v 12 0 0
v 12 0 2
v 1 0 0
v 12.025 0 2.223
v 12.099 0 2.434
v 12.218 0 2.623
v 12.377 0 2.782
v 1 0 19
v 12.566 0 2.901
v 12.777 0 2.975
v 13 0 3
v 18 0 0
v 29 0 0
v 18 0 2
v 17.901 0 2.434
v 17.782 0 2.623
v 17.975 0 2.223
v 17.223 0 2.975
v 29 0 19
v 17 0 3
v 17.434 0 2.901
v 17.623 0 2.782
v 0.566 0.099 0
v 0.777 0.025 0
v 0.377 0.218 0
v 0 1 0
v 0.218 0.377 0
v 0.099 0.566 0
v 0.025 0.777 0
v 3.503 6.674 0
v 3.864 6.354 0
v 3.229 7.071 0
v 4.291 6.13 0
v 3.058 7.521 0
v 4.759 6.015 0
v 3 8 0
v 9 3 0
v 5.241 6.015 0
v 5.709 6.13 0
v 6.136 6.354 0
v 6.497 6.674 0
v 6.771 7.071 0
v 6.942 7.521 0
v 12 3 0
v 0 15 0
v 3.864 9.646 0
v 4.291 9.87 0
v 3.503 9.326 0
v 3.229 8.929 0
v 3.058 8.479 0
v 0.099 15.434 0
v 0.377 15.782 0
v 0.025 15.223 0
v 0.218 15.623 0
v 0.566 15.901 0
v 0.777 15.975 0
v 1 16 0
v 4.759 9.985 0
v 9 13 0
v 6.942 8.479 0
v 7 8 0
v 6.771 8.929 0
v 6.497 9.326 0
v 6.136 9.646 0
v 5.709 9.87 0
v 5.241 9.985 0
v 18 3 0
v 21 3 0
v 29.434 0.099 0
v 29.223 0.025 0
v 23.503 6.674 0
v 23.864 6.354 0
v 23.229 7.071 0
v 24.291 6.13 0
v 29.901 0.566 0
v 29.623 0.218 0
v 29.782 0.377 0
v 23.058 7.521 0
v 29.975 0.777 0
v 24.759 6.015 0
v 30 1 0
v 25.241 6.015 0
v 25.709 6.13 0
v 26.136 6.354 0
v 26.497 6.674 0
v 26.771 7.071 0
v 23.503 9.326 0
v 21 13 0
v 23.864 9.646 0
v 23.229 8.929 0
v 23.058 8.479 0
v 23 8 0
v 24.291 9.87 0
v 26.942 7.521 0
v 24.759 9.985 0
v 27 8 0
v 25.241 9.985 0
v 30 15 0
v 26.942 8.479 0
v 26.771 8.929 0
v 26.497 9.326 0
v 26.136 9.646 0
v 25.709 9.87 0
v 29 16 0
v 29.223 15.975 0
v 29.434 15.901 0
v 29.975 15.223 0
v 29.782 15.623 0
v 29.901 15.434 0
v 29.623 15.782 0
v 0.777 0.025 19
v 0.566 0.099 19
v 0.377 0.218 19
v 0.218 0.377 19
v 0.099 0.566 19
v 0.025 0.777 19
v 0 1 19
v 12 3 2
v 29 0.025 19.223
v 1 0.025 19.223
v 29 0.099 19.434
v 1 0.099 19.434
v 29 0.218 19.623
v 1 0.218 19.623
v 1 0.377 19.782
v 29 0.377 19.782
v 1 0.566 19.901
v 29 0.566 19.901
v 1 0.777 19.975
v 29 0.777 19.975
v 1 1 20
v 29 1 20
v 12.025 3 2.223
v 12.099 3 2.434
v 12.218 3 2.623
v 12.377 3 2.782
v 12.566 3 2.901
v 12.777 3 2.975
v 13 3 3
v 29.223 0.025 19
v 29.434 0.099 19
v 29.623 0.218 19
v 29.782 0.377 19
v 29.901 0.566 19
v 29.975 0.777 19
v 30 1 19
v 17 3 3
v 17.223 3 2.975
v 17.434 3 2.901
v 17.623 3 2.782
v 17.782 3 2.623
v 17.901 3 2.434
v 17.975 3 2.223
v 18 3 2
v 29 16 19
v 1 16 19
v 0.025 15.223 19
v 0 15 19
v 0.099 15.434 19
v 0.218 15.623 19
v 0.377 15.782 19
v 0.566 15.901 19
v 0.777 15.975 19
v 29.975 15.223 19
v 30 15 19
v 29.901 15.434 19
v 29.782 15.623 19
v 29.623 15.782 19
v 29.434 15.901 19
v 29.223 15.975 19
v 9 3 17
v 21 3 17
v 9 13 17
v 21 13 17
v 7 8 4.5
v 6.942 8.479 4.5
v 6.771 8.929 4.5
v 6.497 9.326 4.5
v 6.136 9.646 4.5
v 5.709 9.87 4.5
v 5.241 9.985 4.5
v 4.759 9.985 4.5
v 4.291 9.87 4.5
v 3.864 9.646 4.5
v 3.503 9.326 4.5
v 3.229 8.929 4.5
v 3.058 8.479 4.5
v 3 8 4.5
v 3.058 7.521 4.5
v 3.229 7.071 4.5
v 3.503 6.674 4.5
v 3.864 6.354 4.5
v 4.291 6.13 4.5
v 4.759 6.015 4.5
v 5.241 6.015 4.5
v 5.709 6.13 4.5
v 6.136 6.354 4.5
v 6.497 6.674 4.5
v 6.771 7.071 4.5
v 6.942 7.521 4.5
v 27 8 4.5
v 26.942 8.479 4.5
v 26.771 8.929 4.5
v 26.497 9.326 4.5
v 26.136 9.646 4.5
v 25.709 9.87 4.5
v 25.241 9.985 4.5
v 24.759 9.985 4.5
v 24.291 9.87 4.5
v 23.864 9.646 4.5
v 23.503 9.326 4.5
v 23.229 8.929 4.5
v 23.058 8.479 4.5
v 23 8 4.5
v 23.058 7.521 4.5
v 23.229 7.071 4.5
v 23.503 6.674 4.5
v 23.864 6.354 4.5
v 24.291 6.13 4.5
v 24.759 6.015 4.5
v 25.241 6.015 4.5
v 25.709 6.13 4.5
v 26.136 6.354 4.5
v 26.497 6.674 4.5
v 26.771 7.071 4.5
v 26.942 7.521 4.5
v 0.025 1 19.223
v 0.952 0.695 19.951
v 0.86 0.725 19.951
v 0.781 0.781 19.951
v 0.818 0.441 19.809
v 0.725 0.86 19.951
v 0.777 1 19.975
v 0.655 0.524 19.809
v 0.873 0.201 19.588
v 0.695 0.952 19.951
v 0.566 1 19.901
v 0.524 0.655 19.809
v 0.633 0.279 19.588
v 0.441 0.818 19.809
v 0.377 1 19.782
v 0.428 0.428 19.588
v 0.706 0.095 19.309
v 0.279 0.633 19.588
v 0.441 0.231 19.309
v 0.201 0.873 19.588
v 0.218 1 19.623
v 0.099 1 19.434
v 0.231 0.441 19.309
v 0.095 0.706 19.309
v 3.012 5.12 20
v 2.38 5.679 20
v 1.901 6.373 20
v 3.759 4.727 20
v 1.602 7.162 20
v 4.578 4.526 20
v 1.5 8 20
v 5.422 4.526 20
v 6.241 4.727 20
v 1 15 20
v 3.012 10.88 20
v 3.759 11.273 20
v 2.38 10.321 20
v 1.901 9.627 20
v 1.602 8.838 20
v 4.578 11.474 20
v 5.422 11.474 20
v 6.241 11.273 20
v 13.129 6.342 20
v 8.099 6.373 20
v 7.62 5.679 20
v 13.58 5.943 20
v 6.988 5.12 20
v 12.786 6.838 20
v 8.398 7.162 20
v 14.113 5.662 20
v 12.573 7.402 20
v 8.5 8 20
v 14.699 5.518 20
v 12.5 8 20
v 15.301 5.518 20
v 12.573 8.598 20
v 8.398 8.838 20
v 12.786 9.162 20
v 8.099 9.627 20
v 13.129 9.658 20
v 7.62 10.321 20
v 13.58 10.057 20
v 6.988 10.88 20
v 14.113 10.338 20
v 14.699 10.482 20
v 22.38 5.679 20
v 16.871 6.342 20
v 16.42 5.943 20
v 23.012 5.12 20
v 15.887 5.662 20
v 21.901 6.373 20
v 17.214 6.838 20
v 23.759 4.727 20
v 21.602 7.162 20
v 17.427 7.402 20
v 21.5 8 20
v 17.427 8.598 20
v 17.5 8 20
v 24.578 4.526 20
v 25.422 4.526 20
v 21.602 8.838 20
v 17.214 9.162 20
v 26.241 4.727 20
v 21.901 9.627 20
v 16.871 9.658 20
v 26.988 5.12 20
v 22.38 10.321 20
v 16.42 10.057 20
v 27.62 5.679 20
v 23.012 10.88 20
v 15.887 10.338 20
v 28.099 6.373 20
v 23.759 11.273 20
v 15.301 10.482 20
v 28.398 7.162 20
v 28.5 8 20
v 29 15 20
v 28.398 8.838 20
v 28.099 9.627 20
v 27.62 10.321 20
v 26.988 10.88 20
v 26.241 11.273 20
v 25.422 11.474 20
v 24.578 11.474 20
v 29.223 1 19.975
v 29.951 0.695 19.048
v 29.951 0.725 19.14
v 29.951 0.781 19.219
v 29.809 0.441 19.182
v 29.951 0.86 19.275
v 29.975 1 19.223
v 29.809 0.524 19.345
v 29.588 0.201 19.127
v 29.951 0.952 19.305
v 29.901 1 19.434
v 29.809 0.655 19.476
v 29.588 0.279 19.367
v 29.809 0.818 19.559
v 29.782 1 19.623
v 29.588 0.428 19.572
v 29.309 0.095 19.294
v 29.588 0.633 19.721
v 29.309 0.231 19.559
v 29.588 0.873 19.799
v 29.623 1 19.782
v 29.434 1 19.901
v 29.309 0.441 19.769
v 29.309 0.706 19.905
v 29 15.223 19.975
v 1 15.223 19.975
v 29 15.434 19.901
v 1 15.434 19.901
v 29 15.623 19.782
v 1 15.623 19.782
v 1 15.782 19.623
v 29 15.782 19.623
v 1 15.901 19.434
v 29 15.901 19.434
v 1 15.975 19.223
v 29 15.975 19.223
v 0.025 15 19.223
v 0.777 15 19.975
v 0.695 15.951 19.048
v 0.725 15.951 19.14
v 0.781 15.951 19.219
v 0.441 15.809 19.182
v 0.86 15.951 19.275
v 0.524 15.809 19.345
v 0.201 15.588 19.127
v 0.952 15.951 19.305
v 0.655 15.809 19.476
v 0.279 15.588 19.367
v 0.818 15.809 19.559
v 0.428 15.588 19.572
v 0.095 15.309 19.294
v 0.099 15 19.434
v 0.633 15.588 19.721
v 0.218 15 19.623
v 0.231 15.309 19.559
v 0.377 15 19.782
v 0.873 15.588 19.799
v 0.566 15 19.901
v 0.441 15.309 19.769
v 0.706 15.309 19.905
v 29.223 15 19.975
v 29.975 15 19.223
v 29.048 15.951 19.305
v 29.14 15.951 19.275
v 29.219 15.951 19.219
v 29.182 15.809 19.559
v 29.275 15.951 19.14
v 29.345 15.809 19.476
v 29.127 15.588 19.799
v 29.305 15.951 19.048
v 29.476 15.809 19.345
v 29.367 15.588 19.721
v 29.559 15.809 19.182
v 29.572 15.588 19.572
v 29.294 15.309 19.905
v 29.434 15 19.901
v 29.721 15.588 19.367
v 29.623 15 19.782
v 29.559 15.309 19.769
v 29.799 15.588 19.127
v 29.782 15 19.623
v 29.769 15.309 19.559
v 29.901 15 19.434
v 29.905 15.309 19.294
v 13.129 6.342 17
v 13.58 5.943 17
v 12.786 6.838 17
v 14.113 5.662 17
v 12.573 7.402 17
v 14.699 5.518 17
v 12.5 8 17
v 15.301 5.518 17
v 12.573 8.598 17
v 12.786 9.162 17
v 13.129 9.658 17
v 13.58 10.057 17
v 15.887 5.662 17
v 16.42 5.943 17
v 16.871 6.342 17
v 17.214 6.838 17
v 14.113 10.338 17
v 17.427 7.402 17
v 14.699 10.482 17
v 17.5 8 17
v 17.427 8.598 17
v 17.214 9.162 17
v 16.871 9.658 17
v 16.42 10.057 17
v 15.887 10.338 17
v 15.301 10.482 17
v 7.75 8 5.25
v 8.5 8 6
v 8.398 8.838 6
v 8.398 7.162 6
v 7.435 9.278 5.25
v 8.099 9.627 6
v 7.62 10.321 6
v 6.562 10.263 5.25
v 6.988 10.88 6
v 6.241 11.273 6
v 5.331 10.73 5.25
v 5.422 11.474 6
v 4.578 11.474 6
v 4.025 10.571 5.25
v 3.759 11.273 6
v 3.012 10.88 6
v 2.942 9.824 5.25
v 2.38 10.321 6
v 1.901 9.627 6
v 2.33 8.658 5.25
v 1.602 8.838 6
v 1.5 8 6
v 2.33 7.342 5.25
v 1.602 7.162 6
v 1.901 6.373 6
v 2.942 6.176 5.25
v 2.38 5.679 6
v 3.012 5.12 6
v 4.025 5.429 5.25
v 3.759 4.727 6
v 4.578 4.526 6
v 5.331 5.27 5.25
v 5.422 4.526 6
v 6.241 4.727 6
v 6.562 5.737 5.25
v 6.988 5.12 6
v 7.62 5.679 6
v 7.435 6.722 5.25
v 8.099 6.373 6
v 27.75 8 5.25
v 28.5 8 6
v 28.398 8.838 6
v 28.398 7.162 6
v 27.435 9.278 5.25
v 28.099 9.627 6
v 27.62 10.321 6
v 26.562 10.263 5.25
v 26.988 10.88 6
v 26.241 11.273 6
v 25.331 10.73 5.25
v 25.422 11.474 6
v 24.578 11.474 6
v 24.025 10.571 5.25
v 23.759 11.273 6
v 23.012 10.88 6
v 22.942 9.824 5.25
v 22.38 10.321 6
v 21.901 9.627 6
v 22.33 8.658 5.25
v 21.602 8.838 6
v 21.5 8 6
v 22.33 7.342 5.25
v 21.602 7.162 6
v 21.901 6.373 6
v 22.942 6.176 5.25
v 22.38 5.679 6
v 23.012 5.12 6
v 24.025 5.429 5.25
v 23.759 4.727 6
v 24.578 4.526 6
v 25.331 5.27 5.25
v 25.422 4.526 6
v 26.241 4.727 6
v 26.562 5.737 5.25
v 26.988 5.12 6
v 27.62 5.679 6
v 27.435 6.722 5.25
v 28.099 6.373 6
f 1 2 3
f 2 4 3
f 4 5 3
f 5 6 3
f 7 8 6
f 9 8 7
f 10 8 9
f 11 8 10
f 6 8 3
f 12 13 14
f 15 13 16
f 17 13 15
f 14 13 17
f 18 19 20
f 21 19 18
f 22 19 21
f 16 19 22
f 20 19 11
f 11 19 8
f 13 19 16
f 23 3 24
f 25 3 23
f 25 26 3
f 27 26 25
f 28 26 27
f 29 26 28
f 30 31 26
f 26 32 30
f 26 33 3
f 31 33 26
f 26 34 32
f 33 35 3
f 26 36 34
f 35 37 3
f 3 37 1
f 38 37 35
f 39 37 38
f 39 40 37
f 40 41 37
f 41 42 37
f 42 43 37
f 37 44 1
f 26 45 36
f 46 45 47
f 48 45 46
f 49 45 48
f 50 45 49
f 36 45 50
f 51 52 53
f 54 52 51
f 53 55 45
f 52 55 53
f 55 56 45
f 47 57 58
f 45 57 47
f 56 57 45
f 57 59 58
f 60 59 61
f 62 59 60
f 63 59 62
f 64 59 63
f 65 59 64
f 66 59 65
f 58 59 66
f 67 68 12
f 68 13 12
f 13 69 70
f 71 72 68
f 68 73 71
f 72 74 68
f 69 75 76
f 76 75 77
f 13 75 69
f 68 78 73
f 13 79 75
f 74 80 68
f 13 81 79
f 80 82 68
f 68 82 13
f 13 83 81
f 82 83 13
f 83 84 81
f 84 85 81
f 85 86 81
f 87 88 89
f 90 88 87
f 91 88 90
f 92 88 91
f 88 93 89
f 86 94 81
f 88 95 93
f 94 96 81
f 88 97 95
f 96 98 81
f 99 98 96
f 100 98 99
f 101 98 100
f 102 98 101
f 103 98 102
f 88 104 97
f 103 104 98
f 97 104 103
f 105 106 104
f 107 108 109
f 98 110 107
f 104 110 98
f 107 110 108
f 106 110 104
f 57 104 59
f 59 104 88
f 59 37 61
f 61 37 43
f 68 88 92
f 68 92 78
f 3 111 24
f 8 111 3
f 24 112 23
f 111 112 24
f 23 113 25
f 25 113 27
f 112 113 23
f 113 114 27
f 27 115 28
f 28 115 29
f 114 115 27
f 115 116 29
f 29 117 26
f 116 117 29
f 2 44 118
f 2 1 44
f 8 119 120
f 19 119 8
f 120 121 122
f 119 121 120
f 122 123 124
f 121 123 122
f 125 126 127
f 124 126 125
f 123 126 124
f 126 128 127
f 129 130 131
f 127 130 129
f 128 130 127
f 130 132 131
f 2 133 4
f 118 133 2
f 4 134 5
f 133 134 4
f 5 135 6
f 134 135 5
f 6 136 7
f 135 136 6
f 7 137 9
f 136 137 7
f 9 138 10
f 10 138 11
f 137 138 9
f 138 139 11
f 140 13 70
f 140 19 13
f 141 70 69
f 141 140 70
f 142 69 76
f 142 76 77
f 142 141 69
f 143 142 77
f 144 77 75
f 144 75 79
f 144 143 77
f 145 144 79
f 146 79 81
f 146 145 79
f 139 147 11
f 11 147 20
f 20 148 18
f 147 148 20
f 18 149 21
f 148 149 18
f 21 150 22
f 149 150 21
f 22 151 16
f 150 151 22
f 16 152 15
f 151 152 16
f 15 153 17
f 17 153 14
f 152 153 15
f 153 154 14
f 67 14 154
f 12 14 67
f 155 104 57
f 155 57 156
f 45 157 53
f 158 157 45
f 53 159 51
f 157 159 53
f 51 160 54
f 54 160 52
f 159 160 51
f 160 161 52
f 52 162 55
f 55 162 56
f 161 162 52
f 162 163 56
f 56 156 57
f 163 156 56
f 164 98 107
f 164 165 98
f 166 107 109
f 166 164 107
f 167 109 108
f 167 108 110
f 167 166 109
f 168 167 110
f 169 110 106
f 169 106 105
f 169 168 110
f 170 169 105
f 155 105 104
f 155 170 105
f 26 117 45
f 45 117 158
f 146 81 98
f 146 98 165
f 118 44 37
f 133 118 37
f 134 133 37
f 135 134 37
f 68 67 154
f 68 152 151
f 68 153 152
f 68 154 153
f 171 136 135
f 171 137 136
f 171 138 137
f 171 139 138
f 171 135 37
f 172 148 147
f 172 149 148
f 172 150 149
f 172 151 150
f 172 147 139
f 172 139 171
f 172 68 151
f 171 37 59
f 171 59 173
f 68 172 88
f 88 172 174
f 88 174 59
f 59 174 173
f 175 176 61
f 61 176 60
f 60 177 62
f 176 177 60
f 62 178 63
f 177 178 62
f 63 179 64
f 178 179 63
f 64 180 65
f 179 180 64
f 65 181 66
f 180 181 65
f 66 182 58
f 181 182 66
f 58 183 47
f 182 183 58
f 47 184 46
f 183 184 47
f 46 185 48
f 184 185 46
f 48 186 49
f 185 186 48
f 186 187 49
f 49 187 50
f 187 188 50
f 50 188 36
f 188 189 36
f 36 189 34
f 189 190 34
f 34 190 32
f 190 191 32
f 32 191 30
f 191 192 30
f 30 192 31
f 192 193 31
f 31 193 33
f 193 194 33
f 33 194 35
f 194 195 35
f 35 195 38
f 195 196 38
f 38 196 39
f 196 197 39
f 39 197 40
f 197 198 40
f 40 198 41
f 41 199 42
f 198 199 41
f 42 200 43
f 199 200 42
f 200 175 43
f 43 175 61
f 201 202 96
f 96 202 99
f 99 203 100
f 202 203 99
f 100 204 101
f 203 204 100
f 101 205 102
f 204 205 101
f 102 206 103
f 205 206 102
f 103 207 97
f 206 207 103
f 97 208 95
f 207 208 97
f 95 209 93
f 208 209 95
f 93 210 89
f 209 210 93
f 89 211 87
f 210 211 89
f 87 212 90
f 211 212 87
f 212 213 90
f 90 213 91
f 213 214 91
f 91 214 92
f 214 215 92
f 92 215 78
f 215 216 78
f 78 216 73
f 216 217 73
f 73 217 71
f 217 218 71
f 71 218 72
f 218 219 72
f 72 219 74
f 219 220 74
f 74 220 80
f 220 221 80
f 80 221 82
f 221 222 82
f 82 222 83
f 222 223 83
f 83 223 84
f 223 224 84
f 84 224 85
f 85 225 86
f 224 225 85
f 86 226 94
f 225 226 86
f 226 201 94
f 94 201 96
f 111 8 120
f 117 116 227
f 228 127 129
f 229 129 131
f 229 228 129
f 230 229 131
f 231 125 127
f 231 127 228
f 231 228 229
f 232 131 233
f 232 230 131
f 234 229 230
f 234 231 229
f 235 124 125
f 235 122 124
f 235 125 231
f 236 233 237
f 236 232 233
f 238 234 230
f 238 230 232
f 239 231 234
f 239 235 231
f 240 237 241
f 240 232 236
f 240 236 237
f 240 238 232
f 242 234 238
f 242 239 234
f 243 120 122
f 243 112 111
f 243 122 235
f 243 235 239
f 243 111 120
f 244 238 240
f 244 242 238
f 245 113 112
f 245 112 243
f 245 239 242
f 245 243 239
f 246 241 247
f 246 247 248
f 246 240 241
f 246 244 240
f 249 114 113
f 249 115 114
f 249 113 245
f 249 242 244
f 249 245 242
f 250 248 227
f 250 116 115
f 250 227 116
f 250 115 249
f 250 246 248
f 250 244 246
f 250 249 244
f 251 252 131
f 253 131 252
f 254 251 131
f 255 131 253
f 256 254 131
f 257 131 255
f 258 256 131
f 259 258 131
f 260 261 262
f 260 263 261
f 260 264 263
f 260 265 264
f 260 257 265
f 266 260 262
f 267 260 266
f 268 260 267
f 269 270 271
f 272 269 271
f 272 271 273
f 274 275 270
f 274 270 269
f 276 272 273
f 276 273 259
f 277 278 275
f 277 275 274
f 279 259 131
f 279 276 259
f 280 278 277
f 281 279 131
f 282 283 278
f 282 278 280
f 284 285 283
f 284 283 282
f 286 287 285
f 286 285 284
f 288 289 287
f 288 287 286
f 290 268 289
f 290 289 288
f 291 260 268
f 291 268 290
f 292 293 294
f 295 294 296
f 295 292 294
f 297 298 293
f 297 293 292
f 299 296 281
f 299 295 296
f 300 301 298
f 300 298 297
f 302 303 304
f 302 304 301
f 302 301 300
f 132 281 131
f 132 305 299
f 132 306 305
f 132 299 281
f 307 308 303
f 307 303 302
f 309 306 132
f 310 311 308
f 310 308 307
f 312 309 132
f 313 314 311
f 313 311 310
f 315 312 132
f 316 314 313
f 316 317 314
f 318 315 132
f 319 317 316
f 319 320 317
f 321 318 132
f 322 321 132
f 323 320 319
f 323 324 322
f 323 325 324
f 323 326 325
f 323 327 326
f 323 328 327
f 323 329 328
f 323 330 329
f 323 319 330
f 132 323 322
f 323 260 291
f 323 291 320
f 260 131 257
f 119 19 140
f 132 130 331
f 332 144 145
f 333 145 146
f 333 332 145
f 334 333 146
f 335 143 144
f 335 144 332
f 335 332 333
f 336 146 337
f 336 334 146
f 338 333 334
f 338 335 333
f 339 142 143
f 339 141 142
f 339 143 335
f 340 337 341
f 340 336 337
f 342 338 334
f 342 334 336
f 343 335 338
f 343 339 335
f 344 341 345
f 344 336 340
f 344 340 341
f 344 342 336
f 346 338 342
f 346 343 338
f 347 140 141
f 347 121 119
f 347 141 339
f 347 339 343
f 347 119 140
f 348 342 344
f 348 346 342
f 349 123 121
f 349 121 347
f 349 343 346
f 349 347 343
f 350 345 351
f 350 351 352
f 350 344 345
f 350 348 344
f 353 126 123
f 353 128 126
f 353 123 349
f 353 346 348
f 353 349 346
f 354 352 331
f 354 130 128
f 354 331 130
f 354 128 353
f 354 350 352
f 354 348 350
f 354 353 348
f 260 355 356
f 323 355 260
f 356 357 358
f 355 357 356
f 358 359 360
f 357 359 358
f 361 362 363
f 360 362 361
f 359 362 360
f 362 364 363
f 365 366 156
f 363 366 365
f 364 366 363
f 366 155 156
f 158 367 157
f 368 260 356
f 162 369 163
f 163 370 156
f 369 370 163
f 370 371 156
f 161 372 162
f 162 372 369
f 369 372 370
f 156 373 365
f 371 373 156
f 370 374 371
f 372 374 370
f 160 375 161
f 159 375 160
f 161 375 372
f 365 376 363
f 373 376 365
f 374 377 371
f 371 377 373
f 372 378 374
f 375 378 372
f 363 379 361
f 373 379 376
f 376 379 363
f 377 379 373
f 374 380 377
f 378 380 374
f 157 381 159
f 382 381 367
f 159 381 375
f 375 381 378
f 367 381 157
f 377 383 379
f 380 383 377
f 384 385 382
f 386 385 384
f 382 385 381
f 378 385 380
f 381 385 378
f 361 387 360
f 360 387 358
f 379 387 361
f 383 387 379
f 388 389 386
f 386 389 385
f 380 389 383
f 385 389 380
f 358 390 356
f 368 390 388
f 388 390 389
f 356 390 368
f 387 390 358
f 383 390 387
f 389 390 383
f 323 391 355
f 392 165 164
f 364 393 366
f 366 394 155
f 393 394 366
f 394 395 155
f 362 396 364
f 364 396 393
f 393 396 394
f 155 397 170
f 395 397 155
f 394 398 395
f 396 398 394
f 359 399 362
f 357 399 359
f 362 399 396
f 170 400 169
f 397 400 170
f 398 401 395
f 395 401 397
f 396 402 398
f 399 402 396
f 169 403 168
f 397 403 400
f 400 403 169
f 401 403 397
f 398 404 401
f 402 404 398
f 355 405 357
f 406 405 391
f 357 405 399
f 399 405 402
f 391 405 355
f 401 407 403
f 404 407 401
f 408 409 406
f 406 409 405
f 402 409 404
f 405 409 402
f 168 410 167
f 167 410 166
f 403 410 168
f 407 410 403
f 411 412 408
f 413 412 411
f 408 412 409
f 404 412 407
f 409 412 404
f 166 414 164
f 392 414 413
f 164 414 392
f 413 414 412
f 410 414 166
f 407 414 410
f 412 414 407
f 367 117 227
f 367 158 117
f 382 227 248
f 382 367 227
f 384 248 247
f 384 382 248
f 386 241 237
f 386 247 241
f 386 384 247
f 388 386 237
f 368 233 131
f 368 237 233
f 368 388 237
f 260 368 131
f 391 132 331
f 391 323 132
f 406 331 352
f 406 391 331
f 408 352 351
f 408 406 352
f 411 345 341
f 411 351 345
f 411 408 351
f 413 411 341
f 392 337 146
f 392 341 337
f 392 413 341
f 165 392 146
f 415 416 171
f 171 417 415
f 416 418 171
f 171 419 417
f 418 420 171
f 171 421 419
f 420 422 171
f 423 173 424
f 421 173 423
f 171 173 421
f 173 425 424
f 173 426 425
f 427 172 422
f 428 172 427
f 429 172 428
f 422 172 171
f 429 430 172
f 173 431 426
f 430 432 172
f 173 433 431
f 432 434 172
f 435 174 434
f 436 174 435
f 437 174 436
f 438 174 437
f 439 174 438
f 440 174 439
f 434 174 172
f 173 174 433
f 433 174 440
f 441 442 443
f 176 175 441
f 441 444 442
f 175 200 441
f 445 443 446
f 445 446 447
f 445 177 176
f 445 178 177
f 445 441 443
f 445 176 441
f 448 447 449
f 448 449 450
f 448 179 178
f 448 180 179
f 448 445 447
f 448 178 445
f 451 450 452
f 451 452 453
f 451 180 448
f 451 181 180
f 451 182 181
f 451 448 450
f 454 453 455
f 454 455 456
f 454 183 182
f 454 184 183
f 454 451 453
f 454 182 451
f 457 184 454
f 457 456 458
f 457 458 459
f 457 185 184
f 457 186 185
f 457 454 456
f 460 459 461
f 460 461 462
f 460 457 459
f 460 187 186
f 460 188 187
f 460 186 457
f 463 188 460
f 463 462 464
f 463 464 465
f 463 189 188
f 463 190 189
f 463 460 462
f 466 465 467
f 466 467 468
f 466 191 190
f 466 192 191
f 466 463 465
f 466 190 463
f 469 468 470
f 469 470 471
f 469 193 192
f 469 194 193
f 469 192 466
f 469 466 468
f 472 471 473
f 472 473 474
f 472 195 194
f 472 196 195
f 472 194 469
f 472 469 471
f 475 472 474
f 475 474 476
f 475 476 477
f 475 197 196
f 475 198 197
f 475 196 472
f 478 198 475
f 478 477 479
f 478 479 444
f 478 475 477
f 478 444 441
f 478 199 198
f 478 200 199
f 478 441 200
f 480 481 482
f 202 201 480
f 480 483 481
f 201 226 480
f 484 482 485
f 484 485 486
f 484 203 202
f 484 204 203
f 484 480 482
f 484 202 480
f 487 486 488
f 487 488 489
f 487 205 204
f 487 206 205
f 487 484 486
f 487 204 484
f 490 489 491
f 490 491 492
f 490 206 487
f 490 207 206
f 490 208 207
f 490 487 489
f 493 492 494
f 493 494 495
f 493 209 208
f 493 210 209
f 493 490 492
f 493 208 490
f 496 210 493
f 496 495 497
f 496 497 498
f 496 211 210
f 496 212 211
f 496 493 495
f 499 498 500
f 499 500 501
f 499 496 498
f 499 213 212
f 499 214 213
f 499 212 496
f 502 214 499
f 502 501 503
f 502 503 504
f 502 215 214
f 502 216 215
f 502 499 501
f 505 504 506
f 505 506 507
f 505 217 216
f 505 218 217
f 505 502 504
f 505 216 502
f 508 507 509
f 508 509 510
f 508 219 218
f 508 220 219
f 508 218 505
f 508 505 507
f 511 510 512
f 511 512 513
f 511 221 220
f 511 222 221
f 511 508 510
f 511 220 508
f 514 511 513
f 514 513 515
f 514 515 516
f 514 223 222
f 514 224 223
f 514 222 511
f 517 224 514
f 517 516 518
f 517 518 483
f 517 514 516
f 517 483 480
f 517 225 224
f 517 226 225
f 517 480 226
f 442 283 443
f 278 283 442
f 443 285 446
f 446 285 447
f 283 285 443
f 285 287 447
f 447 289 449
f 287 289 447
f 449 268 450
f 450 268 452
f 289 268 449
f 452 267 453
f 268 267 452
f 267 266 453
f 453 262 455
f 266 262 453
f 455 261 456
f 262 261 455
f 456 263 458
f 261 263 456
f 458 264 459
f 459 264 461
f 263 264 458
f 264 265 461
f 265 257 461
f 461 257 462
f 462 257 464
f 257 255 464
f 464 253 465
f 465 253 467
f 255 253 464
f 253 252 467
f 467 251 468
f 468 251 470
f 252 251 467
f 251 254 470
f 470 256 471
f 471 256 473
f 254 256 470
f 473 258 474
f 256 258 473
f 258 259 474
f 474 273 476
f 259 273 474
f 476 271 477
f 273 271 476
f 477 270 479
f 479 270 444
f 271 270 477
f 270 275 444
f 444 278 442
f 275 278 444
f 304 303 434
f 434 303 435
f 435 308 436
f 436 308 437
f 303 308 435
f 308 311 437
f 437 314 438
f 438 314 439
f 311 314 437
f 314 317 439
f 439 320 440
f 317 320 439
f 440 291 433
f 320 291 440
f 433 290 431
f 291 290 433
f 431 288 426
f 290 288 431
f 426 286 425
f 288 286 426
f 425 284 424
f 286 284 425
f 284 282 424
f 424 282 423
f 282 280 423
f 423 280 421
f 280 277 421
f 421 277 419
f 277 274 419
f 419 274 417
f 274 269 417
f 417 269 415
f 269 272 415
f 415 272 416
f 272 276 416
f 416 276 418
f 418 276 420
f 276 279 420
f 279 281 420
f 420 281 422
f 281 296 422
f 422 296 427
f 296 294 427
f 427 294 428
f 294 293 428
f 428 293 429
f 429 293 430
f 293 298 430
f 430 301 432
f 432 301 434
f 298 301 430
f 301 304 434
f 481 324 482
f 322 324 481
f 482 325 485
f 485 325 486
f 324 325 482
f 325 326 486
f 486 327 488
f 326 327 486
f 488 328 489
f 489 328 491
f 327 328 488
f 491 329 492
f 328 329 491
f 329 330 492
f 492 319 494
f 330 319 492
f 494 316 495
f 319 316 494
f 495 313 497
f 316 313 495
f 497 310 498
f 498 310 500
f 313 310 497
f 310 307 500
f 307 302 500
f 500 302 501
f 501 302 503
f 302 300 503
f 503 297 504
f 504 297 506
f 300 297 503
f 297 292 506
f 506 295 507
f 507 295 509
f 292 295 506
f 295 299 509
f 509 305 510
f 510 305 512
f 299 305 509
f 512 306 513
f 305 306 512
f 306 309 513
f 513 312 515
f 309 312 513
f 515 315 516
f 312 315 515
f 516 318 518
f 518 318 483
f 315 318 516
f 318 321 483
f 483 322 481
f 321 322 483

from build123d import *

# Parameters (mm, degrees)
BOX002_W          = 6
BOX002_H          = 10
BOX002_DEPTH      = 4
CYLINDER004_R     = 2.5
CYLINDER004_DEPTH = 10
CYLINDER_R        = 3.5
CYLINDER_DEPTH    = 33
CHAMFER_SIZE      = 3
CYLINDER001_R     = 3.5
CYLINDER001_DEPTH = 33
CHAMFER001_SIZE   = 3
CYLINDER002_R     = 2
CYLINDER002_DEPTH = 33
CYLINDER003_R     = 2
CYLINDER003_DEPTH = 33
BOX001_W          = 12
BOX001_H          = 10
BOX001_DEPTH      = 20
BOX_W             = 30
BOX_H             = 16
BOX_DEPTH         = 20
FILLET_R          = 1
FILLET001_R       = 1


with BuildPart() as cube002:
    # Box002 → Box002 (new body)
    with BuildSketch(Plane(origin=(12, -4, -1), x_dir=(1, 0, 0), z_dir=(0, 0, 1))):
        with Locations((3, 5)):
            Rectangle(BOX002_W, BOX002_H)
    extrude(amount=BOX002_DEPTH)


with BuildPart() as cylinder004:
    # Cylinder004 → Cylinder004 (new body)
    with BuildSketch(Plane(origin=(15, 8, 15), x_dir=(1, 0, 0), z_dir=(0, 0, 1))):
        Circle(CYLINDER004_R)
    extrude(amount=CYLINDER004_DEPTH)


with BuildPart() as chamfer_body:
    # Cylinder → Cylinder (new body)
    with BuildSketch(Plane(origin=(5, 8, -1), x_dir=(1, 0, 0), z_dir=(0, 0, 1))):
        Circle(CYLINDER_R)
    extrude(amount=CYLINDER_DEPTH)

    # Chamfer
    chamfer_edges = [chamfer_body.edges().sort_by_distance(p)[0] for p in [
        (1.5, 8, -1),
    ]]
    chamfer(chamfer_edges, length=CHAMFER_SIZE)


with BuildPart() as chamfer_body_1:
    # Chamfer placement: moved
    add(chamfer_body.part.moved(Location((0, 0, 4))))


with BuildPart() as chamfer001:
    # Cylinder001 → Cylinder001 (new body)
    with BuildSketch(Plane(origin=(25, 8, -1), x_dir=(1, 0, 0), z_dir=(0, 0, 1))):
        Circle(CYLINDER001_R)
    extrude(amount=CYLINDER001_DEPTH)

    # Chamfer001
    chamfer001_edges = [chamfer001.edges().sort_by_distance(p)[0] for p in [
        (21.5, 8, -1),
    ]]
    chamfer(chamfer001_edges, length=CHAMFER001_SIZE)


with BuildPart() as chamfer001_1:
    # Chamfer001 placement: moved
    add(chamfer001.part.moved(Location((0, 0, 4))))


with BuildPart() as cylinder002:
    # Cylinder002 → Cylinder002 (new body)
    with BuildSketch(Plane(origin=(5, 8, -1), x_dir=(1, 0, 0), z_dir=(0, 0, 1))):
        Circle(CYLINDER002_R)
    extrude(amount=CYLINDER002_DEPTH)


with BuildPart() as cylinder003:
    # Cylinder003 → Cylinder003 (new body)
    with BuildSketch(Plane(origin=(25, 8, -1), x_dir=(1, 0, 0), z_dir=(0, 0, 1))):
        Circle(CYLINDER003_R)
    extrude(amount=CYLINDER003_DEPTH)


with BuildPart() as holes:
    # Box001 → Box001 (new body)
    with BuildSketch(Plane(origin=(9, 3, -3), x_dir=(1, 0, 0), z_dir=(0, 0, 1))):
        with Locations((6, 5)):
            Rectangle(BOX001_W, BOX001_H)
    extrude(amount=BOX001_DEPTH)

    # Fusion: union Chamfer body, Chamfer001, Cylinder002, Cylinder003
    add(chamfer_body_1.part)
    add(chamfer001_1.part)
    add(cylinder002.part)
    add(cylinder003.part)


with BuildPart() as fillet001:
    # Box → Box (new body)
    with BuildSketch(Plane.XY):
        with Locations((15, 8)):
            Rectangle(BOX_W, BOX_H)
    extrude(amount=BOX_DEPTH)

    # Cut: cut holes
    add(holes.part, mode=Mode.SUBTRACT)

    # Cut001: cut Cylinder004
    add(cylinder004.part, mode=Mode.SUBTRACT)

    # Cut002: cut Cube002
    add(cube002.part, mode=Mode.SUBTRACT)

    # Fillet
    fillet_edges = [fillet001.edges().sort_by_distance(p)[0] for p in [
        (12, 1.5, 3),
        (18, 1.5, 3),
    ]]
    fillet(fillet_edges, radius=FILLET_R)

    # Fillet001
    fillet001_edges = [fillet001.edges().sort_by_distance(p)[0] for p in [
        (0, 0, 10),
        (15, 0, 20),
        (30, 0, 10),
        (0, 8, 20),
        (0, 16, 10),
        (30, 8, 20),
        (15, 16, 20),
        (30, 16, 10),
    ]]
    fillet(fillet001_edges, radius=FILLET001_R)


solid = fillet001.part
